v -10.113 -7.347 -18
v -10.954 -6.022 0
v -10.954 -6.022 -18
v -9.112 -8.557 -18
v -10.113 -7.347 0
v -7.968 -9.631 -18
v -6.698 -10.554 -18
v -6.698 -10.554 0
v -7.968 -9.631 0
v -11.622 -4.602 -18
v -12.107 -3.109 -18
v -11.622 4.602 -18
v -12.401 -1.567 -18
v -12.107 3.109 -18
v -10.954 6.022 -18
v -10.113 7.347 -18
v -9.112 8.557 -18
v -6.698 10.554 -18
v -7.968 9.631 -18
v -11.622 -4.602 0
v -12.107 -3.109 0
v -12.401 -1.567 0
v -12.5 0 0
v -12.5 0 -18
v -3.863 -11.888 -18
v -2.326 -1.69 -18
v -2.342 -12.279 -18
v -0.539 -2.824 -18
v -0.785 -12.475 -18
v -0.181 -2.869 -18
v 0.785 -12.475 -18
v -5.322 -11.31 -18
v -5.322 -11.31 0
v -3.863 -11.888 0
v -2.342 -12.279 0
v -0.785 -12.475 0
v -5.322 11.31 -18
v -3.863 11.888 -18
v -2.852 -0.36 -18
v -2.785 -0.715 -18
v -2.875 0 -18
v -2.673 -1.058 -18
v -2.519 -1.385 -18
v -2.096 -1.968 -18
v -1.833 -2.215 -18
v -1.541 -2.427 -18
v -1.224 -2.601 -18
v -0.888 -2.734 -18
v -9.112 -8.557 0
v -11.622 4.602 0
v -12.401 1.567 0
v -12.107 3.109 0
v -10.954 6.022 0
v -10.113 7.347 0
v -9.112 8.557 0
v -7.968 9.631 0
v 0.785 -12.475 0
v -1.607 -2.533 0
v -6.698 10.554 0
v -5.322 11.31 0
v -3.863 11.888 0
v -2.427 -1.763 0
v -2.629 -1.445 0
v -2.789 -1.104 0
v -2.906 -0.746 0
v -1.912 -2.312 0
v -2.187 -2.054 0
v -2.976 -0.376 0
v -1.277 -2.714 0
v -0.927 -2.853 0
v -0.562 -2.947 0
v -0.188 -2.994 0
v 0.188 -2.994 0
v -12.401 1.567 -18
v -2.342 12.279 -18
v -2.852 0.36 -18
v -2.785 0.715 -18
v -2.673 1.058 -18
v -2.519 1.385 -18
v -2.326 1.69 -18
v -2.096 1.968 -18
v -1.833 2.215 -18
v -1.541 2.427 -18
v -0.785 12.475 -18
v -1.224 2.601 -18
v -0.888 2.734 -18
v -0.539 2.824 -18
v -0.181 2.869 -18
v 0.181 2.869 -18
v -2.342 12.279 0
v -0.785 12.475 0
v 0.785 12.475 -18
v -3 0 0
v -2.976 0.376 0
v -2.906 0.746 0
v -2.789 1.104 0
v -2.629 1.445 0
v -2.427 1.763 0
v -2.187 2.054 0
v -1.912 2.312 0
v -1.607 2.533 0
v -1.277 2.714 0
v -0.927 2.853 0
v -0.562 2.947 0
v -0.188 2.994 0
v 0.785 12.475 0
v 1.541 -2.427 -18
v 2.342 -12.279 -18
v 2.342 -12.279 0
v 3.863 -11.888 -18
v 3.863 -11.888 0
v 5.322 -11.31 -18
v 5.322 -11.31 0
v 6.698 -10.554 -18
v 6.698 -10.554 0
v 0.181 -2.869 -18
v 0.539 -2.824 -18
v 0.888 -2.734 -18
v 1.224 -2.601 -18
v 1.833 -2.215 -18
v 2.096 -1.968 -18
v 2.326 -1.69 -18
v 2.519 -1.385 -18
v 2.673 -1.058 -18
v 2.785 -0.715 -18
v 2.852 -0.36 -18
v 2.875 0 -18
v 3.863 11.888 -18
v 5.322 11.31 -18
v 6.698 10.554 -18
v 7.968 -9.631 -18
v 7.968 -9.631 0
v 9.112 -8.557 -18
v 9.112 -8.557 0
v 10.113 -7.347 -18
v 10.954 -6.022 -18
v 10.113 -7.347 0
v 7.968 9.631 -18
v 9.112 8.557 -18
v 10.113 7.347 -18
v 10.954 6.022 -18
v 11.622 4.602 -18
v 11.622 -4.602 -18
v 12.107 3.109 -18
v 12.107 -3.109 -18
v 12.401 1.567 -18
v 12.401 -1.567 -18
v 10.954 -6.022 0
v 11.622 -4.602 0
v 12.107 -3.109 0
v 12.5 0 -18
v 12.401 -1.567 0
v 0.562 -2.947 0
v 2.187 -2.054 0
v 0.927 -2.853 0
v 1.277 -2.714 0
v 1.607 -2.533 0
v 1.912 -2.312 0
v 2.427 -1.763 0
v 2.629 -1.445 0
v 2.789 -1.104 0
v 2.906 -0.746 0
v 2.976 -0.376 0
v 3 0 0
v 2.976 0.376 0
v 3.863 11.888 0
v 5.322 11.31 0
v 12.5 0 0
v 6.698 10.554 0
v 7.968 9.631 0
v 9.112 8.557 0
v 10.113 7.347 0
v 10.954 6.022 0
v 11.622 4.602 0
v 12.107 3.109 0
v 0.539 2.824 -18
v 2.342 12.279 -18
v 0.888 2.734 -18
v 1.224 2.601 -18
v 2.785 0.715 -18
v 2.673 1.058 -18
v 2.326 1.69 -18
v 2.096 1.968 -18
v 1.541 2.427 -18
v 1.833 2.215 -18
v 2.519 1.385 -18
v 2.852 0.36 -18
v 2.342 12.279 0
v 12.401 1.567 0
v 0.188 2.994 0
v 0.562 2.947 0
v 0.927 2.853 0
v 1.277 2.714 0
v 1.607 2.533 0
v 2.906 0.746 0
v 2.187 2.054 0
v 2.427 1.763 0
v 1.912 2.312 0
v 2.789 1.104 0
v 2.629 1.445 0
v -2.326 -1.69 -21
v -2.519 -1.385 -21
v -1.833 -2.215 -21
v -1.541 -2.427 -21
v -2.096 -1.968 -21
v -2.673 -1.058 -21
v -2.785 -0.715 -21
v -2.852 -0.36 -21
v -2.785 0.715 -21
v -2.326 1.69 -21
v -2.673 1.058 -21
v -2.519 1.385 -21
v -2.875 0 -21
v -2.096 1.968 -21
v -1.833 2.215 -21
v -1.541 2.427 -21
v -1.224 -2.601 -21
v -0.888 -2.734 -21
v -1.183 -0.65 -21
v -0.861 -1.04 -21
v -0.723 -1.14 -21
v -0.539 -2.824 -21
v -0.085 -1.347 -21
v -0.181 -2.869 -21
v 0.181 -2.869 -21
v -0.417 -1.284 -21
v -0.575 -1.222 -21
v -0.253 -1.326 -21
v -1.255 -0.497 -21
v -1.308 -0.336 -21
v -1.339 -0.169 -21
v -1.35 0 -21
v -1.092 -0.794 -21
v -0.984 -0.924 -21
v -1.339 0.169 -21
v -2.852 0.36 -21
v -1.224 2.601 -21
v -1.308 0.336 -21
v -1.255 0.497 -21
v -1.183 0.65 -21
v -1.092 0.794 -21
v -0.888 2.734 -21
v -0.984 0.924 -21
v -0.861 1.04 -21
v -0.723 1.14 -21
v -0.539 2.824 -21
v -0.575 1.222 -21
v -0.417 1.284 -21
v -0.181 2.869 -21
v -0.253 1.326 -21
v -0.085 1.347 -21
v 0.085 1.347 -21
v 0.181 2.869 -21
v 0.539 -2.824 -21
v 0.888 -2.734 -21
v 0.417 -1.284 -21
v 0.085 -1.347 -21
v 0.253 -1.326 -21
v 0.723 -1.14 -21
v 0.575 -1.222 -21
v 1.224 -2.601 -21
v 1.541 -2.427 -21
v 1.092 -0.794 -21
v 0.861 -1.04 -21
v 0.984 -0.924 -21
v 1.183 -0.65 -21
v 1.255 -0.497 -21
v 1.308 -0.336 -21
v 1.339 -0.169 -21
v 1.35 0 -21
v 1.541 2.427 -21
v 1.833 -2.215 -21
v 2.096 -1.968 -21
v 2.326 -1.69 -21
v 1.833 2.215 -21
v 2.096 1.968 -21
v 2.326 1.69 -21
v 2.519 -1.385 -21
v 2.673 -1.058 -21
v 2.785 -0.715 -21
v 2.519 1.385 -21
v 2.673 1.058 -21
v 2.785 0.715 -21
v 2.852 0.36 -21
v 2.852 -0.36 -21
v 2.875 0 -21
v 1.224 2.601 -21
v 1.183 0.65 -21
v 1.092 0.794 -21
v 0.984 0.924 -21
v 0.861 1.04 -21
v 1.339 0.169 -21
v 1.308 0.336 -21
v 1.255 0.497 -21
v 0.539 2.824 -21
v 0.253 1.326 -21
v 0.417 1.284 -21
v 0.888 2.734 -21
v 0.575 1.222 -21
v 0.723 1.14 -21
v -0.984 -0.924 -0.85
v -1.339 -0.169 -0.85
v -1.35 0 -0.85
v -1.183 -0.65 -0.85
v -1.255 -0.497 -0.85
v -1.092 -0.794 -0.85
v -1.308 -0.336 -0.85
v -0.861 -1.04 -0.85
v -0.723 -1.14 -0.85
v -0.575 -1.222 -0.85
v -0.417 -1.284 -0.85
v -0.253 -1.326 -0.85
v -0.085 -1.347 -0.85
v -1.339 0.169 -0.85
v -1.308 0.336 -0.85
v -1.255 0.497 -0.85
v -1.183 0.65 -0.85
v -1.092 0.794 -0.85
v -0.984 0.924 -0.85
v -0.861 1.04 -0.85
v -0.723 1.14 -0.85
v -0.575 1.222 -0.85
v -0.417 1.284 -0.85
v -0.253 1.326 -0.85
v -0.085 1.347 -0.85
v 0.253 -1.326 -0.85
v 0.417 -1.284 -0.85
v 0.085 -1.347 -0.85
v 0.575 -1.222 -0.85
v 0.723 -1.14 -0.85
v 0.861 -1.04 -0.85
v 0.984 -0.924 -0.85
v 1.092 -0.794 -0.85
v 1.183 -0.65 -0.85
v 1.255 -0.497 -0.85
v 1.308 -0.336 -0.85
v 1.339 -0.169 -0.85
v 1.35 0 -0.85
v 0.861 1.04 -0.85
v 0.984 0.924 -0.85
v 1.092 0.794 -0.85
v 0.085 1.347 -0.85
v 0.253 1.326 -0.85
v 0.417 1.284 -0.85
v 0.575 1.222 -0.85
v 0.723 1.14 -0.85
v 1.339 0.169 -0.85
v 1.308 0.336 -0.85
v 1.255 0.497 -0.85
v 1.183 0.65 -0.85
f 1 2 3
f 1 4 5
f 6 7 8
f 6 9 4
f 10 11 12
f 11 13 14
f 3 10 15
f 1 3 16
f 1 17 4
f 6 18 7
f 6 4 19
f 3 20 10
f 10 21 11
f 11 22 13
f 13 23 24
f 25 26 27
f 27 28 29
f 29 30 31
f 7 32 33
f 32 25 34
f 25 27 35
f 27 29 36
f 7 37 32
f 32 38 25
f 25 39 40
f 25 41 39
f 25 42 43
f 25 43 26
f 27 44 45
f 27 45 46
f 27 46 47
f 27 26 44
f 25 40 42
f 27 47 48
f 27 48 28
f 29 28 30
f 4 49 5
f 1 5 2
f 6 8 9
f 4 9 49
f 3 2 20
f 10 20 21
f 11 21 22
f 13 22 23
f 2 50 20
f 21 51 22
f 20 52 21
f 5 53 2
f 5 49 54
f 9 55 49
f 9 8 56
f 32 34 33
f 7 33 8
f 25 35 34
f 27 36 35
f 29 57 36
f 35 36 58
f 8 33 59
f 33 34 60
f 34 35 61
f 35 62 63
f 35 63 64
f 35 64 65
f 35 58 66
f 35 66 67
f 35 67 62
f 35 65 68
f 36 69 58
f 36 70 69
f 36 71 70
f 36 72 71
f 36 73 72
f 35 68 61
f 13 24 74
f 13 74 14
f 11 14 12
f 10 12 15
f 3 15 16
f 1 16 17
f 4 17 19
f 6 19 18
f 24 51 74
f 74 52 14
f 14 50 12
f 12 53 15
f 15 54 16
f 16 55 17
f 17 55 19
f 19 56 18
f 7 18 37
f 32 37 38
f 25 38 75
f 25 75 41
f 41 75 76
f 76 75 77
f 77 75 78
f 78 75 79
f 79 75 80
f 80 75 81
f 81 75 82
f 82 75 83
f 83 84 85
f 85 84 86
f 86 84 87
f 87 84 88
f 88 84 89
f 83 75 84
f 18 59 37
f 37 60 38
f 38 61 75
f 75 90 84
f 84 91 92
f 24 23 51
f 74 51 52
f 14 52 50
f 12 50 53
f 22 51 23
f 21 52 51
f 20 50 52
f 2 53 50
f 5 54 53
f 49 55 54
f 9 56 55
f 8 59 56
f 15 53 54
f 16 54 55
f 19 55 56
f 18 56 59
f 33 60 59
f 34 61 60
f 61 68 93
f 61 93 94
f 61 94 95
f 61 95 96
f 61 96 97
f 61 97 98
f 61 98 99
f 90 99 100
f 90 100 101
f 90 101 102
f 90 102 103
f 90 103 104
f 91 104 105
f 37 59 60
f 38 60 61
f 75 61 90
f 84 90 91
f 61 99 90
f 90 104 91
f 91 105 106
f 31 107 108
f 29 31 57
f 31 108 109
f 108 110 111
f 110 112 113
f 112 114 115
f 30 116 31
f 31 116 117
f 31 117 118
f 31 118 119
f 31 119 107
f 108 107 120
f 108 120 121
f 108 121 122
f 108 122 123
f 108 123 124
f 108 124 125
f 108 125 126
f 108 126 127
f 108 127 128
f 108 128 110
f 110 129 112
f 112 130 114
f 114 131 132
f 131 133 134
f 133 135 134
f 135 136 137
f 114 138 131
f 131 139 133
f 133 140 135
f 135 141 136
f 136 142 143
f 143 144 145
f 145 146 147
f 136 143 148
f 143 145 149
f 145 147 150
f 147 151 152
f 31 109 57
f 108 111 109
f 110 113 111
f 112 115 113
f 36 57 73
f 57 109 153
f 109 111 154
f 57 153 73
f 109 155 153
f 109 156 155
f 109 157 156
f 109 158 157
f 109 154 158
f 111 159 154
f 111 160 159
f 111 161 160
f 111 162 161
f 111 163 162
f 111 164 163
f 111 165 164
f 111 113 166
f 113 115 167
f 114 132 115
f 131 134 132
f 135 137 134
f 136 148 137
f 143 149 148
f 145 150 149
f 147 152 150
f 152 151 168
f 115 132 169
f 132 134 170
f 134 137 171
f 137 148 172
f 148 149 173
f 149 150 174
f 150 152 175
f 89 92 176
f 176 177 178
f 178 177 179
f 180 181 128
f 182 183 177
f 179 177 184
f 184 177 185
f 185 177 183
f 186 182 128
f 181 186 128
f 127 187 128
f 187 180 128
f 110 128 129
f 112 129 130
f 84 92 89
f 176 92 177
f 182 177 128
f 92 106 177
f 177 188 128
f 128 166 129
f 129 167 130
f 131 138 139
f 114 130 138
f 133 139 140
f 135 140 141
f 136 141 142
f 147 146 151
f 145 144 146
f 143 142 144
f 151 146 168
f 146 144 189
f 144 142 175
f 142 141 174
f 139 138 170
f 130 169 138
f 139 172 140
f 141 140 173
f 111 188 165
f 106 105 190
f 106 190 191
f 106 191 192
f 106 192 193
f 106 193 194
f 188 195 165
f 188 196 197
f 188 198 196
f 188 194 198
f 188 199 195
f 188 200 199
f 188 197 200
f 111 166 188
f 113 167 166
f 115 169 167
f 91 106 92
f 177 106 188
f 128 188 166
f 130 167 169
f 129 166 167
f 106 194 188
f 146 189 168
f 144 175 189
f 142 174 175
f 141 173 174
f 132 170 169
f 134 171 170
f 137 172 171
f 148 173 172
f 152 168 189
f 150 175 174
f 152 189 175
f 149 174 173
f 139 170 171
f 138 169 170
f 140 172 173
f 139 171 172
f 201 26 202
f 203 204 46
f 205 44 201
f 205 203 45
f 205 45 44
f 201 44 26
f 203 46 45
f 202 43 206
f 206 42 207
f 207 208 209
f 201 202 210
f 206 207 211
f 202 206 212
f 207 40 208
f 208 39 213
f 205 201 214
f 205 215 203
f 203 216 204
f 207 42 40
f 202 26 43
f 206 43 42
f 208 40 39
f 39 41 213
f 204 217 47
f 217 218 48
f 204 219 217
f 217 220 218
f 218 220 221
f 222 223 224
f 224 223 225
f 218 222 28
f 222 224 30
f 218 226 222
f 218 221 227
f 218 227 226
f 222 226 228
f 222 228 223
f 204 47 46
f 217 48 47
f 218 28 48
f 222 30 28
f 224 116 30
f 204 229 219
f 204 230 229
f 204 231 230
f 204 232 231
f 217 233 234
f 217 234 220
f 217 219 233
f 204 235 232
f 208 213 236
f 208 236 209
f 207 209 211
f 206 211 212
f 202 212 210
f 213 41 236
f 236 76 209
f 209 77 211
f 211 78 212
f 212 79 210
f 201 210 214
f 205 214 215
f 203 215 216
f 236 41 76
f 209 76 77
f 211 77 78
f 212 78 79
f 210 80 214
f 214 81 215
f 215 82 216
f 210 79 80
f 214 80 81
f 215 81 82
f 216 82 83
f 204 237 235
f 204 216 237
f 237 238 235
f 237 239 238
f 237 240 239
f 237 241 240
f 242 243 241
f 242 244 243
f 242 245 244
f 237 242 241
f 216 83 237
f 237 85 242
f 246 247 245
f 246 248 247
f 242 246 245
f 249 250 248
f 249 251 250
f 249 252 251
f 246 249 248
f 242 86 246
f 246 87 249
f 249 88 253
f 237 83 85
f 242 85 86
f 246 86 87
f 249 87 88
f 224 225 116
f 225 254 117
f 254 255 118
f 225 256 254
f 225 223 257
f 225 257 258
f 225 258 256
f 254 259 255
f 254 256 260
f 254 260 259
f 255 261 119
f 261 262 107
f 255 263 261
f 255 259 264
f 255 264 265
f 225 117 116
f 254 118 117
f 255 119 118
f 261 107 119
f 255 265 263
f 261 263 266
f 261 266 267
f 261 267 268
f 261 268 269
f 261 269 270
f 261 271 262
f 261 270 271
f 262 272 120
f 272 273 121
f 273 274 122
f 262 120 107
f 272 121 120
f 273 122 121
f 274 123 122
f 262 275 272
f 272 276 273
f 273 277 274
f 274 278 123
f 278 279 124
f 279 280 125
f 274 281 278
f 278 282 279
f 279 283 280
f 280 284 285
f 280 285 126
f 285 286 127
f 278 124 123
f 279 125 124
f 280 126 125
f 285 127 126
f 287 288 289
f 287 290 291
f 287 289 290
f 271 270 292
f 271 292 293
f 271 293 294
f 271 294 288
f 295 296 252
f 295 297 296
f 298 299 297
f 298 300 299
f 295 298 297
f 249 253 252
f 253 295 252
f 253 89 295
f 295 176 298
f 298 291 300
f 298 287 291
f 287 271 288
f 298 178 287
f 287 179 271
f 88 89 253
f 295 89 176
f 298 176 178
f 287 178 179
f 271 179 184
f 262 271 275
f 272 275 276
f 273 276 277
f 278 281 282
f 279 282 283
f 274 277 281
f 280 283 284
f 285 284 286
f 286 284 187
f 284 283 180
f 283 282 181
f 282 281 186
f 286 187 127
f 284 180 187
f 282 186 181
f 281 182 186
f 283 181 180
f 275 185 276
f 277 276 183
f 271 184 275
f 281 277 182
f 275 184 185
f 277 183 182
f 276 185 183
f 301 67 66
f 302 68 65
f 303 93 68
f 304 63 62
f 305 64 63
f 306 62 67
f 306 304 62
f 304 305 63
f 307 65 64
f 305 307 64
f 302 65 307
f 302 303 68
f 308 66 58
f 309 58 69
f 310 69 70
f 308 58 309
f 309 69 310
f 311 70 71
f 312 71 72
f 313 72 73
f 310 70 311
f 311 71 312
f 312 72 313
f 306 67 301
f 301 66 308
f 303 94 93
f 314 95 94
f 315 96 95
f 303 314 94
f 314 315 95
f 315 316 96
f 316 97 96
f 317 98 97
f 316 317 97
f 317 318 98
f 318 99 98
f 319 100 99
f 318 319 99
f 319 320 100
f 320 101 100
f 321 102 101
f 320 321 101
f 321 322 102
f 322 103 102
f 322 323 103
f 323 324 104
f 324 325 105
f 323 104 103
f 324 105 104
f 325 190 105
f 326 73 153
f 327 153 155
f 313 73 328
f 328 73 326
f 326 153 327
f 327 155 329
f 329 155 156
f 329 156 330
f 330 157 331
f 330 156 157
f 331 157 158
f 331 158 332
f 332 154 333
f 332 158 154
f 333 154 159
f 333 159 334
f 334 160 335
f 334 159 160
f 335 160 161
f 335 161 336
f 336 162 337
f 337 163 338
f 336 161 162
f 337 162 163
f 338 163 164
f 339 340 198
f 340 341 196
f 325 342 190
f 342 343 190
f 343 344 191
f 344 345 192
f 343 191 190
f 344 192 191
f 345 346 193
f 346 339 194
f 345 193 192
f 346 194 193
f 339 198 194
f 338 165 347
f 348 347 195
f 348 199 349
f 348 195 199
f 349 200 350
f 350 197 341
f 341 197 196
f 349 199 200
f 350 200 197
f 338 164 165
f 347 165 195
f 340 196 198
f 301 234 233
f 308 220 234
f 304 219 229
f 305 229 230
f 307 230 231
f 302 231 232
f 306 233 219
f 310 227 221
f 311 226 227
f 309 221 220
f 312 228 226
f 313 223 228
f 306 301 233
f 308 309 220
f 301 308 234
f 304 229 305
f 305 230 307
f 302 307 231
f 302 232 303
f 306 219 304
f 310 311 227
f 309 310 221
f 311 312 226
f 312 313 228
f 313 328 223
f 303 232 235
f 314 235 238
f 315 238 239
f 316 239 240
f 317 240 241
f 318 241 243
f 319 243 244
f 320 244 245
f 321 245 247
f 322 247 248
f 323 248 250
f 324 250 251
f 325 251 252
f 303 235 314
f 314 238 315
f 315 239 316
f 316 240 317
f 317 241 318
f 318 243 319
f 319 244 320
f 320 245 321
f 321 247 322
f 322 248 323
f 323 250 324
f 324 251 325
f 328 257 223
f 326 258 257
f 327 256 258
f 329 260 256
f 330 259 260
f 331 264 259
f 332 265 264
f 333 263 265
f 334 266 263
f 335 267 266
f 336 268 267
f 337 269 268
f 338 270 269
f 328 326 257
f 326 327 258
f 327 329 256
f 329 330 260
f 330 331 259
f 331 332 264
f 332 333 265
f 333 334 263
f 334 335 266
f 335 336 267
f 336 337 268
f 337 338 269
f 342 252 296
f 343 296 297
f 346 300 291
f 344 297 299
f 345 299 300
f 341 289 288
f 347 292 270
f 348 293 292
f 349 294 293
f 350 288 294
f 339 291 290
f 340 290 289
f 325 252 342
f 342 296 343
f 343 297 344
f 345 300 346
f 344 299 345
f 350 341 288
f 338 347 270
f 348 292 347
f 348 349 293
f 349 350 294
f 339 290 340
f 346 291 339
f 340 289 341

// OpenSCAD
$fn = 50;

difference() {
	union() {
		translate(v = [0, 0, -18.0]) {
			cylinder(h = 18, r = 12.5);
		}
		#translate(v = [0, 0, -21.0]) {
			cylinder(h = 21, r = 2.875);
		}
	}
	union() {
		translate(v = [0, 0, 0]) {
			rotate(a = [0, 0, 0]) {
				difference() {
					union() {
						translate(v = [0, 0, -21.0]) {
							cylinder(h = 21, r = 1.0);
						}
						translate(v = [0, 0, -0.85]) {
							cylinder(h = 0.85, r1 = 1.35, r2 = 3.0);
						}
						translate(v = [0, 0, -21.0]) {
							cylinder(h = 21, r = 1.35);
						}
						translate(v = [0, 0, -21.0]) {
							cylinder(h = 21, r = 1.0);
						}
					}
					union();
				}
			}
		}
	}
}
